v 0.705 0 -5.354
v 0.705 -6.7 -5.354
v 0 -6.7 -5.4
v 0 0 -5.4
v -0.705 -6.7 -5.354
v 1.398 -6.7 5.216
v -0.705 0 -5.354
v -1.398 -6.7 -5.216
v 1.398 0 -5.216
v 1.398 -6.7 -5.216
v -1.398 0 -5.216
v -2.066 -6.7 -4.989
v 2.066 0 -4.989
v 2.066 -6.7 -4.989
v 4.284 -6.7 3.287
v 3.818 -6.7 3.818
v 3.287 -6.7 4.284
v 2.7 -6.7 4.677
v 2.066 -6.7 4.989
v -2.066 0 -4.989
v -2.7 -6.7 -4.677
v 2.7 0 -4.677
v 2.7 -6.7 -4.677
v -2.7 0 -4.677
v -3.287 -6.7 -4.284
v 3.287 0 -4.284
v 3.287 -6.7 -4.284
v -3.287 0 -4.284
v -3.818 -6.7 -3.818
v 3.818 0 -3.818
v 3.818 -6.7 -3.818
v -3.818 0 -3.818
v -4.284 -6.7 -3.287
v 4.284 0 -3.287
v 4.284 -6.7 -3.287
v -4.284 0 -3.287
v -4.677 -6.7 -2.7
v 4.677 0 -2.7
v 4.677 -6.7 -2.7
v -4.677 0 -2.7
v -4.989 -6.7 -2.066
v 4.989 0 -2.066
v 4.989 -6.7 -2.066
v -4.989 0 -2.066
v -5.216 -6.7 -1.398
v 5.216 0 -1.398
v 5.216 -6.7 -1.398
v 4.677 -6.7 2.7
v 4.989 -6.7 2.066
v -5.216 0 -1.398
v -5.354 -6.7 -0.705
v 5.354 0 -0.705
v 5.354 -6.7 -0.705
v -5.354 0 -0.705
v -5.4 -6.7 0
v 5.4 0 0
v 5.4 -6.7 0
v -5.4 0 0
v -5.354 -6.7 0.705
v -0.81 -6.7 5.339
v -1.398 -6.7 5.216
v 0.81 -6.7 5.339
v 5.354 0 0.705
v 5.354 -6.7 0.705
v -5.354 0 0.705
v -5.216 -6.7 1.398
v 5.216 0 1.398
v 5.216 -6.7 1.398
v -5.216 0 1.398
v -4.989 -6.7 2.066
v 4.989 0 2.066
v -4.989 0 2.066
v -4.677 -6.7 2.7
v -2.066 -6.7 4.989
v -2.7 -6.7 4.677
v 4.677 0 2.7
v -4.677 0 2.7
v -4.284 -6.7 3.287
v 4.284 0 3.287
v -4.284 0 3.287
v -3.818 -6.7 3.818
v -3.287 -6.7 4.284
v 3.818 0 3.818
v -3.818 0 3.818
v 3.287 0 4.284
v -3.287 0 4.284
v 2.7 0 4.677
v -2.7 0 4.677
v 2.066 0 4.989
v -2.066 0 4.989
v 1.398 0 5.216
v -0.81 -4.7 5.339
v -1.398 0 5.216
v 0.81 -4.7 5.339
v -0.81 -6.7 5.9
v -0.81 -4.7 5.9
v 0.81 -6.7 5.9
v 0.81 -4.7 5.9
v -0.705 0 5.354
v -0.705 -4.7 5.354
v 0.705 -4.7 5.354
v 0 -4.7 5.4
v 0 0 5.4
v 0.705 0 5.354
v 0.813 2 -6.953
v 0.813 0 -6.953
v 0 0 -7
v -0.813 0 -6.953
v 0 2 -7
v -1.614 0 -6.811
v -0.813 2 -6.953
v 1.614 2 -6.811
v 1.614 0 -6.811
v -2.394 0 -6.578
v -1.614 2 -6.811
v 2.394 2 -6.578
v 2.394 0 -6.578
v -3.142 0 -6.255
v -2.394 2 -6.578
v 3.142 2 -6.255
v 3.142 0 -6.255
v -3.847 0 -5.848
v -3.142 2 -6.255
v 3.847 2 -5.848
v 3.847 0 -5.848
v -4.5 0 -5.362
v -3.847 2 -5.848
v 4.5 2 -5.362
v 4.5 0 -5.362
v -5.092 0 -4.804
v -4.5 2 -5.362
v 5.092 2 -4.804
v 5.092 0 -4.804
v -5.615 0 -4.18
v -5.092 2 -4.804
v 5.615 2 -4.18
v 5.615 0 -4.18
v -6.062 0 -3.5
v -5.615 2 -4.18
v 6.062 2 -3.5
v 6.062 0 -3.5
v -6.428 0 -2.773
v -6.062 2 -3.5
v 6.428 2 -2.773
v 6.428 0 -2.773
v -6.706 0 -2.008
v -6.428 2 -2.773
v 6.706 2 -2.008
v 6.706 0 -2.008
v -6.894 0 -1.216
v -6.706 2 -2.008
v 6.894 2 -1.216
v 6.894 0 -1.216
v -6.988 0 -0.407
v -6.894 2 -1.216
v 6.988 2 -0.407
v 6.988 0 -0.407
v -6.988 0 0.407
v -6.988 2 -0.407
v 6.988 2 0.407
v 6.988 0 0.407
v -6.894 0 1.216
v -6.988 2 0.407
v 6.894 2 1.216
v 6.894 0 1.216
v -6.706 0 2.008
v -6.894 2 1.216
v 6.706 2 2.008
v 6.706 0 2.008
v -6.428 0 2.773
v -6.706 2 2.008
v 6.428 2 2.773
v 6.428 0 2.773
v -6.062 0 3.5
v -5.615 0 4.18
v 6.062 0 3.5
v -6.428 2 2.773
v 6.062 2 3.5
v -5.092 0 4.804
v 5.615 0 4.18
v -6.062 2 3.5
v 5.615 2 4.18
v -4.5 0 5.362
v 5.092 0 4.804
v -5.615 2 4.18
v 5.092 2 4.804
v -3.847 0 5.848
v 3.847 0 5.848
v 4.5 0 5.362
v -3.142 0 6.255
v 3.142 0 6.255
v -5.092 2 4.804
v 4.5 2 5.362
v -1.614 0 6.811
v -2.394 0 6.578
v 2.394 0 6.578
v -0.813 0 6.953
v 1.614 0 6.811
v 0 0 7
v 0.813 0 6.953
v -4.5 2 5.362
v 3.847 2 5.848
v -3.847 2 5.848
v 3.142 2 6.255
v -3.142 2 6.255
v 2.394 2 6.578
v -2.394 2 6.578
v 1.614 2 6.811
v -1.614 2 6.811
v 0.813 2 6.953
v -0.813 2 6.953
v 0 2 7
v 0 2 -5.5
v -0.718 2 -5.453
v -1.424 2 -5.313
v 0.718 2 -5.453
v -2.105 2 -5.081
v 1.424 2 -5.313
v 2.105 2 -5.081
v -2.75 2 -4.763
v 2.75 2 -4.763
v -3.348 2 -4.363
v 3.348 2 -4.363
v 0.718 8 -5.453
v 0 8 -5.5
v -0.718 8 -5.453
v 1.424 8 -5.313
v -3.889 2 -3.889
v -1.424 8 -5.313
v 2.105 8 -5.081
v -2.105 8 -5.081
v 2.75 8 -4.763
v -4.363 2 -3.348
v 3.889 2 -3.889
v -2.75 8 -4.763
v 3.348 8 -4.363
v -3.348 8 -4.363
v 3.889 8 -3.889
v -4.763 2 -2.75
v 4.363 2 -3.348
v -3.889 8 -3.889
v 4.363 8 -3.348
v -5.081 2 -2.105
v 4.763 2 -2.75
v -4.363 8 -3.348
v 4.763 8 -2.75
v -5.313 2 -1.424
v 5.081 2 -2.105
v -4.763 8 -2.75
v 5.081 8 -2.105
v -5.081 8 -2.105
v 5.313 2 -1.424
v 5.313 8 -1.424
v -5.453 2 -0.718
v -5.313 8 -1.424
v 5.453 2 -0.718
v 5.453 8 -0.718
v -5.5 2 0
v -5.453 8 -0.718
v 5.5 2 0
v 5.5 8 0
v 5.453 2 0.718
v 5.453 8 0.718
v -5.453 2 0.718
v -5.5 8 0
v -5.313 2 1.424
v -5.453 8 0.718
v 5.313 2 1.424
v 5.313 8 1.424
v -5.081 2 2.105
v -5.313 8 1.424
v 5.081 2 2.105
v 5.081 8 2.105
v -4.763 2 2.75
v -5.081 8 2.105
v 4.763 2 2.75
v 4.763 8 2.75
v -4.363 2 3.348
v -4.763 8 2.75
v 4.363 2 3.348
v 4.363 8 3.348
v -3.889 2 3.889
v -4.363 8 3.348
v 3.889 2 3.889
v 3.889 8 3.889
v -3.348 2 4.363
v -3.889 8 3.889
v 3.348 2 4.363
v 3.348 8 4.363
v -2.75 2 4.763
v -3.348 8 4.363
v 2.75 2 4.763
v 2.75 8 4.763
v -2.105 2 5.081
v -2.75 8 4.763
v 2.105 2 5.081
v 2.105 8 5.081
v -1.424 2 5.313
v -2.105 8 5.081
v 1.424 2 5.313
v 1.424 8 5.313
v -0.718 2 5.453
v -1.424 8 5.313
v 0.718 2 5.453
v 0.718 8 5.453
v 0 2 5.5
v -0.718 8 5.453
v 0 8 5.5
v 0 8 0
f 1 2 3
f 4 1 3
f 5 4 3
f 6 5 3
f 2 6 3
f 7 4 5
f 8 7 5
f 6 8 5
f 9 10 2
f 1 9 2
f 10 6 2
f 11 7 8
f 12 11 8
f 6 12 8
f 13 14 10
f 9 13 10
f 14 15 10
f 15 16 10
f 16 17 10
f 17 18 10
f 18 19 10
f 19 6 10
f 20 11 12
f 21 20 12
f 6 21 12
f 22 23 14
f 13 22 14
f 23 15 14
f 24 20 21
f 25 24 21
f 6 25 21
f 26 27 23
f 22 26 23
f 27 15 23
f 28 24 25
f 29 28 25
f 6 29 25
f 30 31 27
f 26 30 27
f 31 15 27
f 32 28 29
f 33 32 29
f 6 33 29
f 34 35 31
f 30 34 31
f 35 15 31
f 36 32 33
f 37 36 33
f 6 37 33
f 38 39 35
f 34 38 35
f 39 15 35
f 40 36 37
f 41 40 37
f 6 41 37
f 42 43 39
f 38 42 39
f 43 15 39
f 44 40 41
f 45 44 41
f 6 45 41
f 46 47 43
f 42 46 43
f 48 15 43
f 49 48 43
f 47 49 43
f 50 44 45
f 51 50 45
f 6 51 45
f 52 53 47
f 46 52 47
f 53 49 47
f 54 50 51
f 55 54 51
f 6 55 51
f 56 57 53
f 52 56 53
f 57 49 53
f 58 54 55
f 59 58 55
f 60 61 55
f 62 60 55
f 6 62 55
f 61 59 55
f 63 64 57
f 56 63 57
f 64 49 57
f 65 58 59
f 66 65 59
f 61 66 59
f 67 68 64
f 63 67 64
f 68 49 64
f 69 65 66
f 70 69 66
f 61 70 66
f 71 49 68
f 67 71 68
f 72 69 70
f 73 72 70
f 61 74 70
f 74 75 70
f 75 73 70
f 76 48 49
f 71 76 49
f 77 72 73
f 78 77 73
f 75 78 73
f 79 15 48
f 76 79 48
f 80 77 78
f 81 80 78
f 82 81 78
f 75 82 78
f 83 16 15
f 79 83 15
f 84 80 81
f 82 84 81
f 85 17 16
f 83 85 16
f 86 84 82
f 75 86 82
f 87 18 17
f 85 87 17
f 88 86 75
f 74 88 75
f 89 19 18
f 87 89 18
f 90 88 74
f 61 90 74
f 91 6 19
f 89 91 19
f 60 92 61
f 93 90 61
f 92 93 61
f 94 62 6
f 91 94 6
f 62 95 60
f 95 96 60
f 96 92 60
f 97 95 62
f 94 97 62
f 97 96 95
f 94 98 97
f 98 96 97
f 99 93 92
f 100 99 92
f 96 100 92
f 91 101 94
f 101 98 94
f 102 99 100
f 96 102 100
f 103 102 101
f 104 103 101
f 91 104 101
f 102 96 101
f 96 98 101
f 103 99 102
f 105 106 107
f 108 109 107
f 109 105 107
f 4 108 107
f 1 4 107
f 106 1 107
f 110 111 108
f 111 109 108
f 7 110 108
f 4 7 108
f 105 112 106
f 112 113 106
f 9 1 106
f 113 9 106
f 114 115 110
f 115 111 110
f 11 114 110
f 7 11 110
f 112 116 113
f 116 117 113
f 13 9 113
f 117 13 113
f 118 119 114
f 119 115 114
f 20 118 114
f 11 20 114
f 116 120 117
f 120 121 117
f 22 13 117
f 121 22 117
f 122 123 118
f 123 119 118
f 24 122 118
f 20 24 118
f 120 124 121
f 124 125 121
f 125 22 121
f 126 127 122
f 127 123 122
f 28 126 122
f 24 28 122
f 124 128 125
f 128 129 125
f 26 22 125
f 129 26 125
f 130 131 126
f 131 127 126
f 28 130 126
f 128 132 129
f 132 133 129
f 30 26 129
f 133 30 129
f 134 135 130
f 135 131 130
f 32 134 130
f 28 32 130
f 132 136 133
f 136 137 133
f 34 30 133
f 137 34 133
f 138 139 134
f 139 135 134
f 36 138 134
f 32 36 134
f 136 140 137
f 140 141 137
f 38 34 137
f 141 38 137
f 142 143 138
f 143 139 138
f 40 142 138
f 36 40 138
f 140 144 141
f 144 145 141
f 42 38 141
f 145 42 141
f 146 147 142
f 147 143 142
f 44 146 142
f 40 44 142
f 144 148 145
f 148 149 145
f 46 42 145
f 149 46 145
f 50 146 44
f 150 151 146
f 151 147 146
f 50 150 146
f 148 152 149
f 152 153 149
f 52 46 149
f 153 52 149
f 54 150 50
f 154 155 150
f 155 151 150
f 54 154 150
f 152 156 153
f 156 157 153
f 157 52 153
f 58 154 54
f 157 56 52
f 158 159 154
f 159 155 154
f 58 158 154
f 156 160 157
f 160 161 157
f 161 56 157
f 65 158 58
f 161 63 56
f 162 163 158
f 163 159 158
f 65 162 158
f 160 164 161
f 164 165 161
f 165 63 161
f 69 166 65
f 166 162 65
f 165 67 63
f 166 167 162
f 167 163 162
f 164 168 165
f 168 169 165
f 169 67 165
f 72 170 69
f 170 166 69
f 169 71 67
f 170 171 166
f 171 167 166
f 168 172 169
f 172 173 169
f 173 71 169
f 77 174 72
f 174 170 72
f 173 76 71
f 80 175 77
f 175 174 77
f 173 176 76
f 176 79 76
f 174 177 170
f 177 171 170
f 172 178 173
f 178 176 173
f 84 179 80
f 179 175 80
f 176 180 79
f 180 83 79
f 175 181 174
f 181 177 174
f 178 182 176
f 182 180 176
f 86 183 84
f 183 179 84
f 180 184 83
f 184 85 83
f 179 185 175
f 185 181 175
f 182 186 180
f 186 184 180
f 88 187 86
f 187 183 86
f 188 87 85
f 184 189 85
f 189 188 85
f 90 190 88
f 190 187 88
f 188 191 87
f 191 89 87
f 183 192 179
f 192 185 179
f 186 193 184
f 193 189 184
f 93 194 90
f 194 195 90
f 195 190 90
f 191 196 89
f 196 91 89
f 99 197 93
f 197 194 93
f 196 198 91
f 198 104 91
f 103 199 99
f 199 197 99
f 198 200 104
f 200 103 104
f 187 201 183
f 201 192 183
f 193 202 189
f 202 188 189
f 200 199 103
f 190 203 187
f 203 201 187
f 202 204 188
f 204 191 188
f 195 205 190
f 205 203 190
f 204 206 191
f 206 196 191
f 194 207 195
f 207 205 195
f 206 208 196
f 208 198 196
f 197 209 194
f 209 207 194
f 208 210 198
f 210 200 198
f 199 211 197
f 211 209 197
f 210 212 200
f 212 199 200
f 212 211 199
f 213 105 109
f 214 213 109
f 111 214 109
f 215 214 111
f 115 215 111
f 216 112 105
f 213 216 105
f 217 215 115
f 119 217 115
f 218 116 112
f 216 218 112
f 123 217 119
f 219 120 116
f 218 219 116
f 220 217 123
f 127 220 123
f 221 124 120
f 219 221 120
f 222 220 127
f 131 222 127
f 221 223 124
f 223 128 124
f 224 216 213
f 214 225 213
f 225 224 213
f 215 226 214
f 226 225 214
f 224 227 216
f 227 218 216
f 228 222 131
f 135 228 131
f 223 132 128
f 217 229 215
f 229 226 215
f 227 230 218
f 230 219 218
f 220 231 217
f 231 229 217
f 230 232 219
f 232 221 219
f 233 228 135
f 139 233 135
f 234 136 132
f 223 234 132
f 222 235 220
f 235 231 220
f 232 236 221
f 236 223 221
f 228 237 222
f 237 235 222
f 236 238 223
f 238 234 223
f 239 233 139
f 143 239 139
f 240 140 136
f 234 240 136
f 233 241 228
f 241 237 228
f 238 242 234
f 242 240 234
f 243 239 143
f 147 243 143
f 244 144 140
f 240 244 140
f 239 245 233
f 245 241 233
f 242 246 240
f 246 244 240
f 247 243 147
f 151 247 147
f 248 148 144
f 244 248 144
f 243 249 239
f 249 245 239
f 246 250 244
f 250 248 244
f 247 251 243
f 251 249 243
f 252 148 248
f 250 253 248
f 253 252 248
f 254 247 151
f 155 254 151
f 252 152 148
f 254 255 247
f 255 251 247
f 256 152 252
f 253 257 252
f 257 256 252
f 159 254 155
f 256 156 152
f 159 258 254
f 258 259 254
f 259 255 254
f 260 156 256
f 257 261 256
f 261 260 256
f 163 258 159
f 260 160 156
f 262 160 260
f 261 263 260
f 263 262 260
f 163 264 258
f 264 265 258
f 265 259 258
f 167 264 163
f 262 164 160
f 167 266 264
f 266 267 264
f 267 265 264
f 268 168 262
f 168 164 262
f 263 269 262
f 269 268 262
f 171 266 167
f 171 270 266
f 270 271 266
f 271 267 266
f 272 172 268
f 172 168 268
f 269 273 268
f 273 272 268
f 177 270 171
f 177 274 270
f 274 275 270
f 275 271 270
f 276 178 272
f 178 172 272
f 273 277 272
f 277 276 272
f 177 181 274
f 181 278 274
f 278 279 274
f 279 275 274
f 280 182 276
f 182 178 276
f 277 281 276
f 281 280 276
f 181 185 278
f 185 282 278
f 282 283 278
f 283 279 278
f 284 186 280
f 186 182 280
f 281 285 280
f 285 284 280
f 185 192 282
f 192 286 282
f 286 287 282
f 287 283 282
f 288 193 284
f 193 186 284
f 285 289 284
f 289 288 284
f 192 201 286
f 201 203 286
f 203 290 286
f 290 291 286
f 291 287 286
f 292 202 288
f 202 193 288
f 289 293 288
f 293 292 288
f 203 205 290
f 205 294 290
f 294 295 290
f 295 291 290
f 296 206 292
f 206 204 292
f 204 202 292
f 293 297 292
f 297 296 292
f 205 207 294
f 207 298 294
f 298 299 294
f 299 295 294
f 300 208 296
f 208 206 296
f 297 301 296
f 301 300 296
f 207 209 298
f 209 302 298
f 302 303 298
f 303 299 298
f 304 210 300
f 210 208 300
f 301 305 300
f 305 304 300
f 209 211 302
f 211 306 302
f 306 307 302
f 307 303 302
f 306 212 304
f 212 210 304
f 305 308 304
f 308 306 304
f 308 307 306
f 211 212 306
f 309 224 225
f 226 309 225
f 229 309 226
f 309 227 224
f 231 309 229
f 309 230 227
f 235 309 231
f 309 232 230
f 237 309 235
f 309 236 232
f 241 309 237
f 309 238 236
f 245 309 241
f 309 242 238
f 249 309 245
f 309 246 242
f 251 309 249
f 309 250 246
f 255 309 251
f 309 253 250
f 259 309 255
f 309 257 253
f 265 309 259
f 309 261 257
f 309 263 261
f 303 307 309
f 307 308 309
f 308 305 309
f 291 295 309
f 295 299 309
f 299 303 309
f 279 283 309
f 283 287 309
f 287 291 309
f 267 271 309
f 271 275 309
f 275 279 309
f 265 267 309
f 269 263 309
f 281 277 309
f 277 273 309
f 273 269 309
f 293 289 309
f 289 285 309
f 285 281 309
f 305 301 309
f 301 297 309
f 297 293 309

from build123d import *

# Parameters (mm, degrees)
SKIZZE2_R                       = 7
AUFSATZ_LINEAR_AUSTRAGEN2_DEPTH = 2
SKIZZE4_R                       = 5.5
AUFSATZ_LINEAR_AUSTRAGEN3_DEPTH = 6
SKIZZE5_R                       = 5.4
AUFSATZ_LINEAR_AUSTRAGEN4_DEPTH = 6.7
SKIZZE7_W                       = 1.619965962
SKIZZE7_H                       = 1
AUFSATZ_LINEAR_AUSTRAGEN5_DEPTH = 2


with BuildPart() as part:
    # Skizze2 → Aufsatz-Linear austragen2 (new body)
    with BuildSketch(Plane(origin=(0, 0, 0), x_dir=(1, 0, 0), z_dir=(0, 1, 0))):
        with Locations(Location((0, 0, 0), (0, 0, 270))):
            Circle(SKIZZE2_R)
    extrude(amount=AUFSATZ_LINEAR_AUSTRAGEN2_DEPTH)

    # Skizze4 → Aufsatz-Linear austragen3 (add)
    with BuildSketch(Plane(origin=(0, 2, 0), x_dir=(1, 0, 0), z_dir=(0, 1, 0))):
        with Locations(Location((0, 0, 0), (0, 0, 270))):
            Circle(SKIZZE4_R)
    extrude(amount=AUFSATZ_LINEAR_AUSTRAGEN3_DEPTH)

    # Skizze5 → Aufsatz-Linear austragen4 (add)
    with BuildSketch(Plane(origin=(0, 0, 0), x_dir=(-1, 0, 0), z_dir=(0, -1, 0))):
        with Locations(Location((0, 0, 0), (0, 0, 90))):
            Circle(SKIZZE5_R)
    extrude(amount=AUFSATZ_LINEAR_AUSTRAGEN4_DEPTH)

    # Skizze7 → Aufsatz-Linear austragen5 (add)
    with BuildSketch(Plane.XZ.offset(6.7)):
        with Locations((0, 5.4)):
            Rectangle(SKIZZE7_W, SKIZZE7_H)
    extrude(amount=-AUFSATZ_LINEAR_AUSTRAGEN5_DEPTH)


solid = part.part
